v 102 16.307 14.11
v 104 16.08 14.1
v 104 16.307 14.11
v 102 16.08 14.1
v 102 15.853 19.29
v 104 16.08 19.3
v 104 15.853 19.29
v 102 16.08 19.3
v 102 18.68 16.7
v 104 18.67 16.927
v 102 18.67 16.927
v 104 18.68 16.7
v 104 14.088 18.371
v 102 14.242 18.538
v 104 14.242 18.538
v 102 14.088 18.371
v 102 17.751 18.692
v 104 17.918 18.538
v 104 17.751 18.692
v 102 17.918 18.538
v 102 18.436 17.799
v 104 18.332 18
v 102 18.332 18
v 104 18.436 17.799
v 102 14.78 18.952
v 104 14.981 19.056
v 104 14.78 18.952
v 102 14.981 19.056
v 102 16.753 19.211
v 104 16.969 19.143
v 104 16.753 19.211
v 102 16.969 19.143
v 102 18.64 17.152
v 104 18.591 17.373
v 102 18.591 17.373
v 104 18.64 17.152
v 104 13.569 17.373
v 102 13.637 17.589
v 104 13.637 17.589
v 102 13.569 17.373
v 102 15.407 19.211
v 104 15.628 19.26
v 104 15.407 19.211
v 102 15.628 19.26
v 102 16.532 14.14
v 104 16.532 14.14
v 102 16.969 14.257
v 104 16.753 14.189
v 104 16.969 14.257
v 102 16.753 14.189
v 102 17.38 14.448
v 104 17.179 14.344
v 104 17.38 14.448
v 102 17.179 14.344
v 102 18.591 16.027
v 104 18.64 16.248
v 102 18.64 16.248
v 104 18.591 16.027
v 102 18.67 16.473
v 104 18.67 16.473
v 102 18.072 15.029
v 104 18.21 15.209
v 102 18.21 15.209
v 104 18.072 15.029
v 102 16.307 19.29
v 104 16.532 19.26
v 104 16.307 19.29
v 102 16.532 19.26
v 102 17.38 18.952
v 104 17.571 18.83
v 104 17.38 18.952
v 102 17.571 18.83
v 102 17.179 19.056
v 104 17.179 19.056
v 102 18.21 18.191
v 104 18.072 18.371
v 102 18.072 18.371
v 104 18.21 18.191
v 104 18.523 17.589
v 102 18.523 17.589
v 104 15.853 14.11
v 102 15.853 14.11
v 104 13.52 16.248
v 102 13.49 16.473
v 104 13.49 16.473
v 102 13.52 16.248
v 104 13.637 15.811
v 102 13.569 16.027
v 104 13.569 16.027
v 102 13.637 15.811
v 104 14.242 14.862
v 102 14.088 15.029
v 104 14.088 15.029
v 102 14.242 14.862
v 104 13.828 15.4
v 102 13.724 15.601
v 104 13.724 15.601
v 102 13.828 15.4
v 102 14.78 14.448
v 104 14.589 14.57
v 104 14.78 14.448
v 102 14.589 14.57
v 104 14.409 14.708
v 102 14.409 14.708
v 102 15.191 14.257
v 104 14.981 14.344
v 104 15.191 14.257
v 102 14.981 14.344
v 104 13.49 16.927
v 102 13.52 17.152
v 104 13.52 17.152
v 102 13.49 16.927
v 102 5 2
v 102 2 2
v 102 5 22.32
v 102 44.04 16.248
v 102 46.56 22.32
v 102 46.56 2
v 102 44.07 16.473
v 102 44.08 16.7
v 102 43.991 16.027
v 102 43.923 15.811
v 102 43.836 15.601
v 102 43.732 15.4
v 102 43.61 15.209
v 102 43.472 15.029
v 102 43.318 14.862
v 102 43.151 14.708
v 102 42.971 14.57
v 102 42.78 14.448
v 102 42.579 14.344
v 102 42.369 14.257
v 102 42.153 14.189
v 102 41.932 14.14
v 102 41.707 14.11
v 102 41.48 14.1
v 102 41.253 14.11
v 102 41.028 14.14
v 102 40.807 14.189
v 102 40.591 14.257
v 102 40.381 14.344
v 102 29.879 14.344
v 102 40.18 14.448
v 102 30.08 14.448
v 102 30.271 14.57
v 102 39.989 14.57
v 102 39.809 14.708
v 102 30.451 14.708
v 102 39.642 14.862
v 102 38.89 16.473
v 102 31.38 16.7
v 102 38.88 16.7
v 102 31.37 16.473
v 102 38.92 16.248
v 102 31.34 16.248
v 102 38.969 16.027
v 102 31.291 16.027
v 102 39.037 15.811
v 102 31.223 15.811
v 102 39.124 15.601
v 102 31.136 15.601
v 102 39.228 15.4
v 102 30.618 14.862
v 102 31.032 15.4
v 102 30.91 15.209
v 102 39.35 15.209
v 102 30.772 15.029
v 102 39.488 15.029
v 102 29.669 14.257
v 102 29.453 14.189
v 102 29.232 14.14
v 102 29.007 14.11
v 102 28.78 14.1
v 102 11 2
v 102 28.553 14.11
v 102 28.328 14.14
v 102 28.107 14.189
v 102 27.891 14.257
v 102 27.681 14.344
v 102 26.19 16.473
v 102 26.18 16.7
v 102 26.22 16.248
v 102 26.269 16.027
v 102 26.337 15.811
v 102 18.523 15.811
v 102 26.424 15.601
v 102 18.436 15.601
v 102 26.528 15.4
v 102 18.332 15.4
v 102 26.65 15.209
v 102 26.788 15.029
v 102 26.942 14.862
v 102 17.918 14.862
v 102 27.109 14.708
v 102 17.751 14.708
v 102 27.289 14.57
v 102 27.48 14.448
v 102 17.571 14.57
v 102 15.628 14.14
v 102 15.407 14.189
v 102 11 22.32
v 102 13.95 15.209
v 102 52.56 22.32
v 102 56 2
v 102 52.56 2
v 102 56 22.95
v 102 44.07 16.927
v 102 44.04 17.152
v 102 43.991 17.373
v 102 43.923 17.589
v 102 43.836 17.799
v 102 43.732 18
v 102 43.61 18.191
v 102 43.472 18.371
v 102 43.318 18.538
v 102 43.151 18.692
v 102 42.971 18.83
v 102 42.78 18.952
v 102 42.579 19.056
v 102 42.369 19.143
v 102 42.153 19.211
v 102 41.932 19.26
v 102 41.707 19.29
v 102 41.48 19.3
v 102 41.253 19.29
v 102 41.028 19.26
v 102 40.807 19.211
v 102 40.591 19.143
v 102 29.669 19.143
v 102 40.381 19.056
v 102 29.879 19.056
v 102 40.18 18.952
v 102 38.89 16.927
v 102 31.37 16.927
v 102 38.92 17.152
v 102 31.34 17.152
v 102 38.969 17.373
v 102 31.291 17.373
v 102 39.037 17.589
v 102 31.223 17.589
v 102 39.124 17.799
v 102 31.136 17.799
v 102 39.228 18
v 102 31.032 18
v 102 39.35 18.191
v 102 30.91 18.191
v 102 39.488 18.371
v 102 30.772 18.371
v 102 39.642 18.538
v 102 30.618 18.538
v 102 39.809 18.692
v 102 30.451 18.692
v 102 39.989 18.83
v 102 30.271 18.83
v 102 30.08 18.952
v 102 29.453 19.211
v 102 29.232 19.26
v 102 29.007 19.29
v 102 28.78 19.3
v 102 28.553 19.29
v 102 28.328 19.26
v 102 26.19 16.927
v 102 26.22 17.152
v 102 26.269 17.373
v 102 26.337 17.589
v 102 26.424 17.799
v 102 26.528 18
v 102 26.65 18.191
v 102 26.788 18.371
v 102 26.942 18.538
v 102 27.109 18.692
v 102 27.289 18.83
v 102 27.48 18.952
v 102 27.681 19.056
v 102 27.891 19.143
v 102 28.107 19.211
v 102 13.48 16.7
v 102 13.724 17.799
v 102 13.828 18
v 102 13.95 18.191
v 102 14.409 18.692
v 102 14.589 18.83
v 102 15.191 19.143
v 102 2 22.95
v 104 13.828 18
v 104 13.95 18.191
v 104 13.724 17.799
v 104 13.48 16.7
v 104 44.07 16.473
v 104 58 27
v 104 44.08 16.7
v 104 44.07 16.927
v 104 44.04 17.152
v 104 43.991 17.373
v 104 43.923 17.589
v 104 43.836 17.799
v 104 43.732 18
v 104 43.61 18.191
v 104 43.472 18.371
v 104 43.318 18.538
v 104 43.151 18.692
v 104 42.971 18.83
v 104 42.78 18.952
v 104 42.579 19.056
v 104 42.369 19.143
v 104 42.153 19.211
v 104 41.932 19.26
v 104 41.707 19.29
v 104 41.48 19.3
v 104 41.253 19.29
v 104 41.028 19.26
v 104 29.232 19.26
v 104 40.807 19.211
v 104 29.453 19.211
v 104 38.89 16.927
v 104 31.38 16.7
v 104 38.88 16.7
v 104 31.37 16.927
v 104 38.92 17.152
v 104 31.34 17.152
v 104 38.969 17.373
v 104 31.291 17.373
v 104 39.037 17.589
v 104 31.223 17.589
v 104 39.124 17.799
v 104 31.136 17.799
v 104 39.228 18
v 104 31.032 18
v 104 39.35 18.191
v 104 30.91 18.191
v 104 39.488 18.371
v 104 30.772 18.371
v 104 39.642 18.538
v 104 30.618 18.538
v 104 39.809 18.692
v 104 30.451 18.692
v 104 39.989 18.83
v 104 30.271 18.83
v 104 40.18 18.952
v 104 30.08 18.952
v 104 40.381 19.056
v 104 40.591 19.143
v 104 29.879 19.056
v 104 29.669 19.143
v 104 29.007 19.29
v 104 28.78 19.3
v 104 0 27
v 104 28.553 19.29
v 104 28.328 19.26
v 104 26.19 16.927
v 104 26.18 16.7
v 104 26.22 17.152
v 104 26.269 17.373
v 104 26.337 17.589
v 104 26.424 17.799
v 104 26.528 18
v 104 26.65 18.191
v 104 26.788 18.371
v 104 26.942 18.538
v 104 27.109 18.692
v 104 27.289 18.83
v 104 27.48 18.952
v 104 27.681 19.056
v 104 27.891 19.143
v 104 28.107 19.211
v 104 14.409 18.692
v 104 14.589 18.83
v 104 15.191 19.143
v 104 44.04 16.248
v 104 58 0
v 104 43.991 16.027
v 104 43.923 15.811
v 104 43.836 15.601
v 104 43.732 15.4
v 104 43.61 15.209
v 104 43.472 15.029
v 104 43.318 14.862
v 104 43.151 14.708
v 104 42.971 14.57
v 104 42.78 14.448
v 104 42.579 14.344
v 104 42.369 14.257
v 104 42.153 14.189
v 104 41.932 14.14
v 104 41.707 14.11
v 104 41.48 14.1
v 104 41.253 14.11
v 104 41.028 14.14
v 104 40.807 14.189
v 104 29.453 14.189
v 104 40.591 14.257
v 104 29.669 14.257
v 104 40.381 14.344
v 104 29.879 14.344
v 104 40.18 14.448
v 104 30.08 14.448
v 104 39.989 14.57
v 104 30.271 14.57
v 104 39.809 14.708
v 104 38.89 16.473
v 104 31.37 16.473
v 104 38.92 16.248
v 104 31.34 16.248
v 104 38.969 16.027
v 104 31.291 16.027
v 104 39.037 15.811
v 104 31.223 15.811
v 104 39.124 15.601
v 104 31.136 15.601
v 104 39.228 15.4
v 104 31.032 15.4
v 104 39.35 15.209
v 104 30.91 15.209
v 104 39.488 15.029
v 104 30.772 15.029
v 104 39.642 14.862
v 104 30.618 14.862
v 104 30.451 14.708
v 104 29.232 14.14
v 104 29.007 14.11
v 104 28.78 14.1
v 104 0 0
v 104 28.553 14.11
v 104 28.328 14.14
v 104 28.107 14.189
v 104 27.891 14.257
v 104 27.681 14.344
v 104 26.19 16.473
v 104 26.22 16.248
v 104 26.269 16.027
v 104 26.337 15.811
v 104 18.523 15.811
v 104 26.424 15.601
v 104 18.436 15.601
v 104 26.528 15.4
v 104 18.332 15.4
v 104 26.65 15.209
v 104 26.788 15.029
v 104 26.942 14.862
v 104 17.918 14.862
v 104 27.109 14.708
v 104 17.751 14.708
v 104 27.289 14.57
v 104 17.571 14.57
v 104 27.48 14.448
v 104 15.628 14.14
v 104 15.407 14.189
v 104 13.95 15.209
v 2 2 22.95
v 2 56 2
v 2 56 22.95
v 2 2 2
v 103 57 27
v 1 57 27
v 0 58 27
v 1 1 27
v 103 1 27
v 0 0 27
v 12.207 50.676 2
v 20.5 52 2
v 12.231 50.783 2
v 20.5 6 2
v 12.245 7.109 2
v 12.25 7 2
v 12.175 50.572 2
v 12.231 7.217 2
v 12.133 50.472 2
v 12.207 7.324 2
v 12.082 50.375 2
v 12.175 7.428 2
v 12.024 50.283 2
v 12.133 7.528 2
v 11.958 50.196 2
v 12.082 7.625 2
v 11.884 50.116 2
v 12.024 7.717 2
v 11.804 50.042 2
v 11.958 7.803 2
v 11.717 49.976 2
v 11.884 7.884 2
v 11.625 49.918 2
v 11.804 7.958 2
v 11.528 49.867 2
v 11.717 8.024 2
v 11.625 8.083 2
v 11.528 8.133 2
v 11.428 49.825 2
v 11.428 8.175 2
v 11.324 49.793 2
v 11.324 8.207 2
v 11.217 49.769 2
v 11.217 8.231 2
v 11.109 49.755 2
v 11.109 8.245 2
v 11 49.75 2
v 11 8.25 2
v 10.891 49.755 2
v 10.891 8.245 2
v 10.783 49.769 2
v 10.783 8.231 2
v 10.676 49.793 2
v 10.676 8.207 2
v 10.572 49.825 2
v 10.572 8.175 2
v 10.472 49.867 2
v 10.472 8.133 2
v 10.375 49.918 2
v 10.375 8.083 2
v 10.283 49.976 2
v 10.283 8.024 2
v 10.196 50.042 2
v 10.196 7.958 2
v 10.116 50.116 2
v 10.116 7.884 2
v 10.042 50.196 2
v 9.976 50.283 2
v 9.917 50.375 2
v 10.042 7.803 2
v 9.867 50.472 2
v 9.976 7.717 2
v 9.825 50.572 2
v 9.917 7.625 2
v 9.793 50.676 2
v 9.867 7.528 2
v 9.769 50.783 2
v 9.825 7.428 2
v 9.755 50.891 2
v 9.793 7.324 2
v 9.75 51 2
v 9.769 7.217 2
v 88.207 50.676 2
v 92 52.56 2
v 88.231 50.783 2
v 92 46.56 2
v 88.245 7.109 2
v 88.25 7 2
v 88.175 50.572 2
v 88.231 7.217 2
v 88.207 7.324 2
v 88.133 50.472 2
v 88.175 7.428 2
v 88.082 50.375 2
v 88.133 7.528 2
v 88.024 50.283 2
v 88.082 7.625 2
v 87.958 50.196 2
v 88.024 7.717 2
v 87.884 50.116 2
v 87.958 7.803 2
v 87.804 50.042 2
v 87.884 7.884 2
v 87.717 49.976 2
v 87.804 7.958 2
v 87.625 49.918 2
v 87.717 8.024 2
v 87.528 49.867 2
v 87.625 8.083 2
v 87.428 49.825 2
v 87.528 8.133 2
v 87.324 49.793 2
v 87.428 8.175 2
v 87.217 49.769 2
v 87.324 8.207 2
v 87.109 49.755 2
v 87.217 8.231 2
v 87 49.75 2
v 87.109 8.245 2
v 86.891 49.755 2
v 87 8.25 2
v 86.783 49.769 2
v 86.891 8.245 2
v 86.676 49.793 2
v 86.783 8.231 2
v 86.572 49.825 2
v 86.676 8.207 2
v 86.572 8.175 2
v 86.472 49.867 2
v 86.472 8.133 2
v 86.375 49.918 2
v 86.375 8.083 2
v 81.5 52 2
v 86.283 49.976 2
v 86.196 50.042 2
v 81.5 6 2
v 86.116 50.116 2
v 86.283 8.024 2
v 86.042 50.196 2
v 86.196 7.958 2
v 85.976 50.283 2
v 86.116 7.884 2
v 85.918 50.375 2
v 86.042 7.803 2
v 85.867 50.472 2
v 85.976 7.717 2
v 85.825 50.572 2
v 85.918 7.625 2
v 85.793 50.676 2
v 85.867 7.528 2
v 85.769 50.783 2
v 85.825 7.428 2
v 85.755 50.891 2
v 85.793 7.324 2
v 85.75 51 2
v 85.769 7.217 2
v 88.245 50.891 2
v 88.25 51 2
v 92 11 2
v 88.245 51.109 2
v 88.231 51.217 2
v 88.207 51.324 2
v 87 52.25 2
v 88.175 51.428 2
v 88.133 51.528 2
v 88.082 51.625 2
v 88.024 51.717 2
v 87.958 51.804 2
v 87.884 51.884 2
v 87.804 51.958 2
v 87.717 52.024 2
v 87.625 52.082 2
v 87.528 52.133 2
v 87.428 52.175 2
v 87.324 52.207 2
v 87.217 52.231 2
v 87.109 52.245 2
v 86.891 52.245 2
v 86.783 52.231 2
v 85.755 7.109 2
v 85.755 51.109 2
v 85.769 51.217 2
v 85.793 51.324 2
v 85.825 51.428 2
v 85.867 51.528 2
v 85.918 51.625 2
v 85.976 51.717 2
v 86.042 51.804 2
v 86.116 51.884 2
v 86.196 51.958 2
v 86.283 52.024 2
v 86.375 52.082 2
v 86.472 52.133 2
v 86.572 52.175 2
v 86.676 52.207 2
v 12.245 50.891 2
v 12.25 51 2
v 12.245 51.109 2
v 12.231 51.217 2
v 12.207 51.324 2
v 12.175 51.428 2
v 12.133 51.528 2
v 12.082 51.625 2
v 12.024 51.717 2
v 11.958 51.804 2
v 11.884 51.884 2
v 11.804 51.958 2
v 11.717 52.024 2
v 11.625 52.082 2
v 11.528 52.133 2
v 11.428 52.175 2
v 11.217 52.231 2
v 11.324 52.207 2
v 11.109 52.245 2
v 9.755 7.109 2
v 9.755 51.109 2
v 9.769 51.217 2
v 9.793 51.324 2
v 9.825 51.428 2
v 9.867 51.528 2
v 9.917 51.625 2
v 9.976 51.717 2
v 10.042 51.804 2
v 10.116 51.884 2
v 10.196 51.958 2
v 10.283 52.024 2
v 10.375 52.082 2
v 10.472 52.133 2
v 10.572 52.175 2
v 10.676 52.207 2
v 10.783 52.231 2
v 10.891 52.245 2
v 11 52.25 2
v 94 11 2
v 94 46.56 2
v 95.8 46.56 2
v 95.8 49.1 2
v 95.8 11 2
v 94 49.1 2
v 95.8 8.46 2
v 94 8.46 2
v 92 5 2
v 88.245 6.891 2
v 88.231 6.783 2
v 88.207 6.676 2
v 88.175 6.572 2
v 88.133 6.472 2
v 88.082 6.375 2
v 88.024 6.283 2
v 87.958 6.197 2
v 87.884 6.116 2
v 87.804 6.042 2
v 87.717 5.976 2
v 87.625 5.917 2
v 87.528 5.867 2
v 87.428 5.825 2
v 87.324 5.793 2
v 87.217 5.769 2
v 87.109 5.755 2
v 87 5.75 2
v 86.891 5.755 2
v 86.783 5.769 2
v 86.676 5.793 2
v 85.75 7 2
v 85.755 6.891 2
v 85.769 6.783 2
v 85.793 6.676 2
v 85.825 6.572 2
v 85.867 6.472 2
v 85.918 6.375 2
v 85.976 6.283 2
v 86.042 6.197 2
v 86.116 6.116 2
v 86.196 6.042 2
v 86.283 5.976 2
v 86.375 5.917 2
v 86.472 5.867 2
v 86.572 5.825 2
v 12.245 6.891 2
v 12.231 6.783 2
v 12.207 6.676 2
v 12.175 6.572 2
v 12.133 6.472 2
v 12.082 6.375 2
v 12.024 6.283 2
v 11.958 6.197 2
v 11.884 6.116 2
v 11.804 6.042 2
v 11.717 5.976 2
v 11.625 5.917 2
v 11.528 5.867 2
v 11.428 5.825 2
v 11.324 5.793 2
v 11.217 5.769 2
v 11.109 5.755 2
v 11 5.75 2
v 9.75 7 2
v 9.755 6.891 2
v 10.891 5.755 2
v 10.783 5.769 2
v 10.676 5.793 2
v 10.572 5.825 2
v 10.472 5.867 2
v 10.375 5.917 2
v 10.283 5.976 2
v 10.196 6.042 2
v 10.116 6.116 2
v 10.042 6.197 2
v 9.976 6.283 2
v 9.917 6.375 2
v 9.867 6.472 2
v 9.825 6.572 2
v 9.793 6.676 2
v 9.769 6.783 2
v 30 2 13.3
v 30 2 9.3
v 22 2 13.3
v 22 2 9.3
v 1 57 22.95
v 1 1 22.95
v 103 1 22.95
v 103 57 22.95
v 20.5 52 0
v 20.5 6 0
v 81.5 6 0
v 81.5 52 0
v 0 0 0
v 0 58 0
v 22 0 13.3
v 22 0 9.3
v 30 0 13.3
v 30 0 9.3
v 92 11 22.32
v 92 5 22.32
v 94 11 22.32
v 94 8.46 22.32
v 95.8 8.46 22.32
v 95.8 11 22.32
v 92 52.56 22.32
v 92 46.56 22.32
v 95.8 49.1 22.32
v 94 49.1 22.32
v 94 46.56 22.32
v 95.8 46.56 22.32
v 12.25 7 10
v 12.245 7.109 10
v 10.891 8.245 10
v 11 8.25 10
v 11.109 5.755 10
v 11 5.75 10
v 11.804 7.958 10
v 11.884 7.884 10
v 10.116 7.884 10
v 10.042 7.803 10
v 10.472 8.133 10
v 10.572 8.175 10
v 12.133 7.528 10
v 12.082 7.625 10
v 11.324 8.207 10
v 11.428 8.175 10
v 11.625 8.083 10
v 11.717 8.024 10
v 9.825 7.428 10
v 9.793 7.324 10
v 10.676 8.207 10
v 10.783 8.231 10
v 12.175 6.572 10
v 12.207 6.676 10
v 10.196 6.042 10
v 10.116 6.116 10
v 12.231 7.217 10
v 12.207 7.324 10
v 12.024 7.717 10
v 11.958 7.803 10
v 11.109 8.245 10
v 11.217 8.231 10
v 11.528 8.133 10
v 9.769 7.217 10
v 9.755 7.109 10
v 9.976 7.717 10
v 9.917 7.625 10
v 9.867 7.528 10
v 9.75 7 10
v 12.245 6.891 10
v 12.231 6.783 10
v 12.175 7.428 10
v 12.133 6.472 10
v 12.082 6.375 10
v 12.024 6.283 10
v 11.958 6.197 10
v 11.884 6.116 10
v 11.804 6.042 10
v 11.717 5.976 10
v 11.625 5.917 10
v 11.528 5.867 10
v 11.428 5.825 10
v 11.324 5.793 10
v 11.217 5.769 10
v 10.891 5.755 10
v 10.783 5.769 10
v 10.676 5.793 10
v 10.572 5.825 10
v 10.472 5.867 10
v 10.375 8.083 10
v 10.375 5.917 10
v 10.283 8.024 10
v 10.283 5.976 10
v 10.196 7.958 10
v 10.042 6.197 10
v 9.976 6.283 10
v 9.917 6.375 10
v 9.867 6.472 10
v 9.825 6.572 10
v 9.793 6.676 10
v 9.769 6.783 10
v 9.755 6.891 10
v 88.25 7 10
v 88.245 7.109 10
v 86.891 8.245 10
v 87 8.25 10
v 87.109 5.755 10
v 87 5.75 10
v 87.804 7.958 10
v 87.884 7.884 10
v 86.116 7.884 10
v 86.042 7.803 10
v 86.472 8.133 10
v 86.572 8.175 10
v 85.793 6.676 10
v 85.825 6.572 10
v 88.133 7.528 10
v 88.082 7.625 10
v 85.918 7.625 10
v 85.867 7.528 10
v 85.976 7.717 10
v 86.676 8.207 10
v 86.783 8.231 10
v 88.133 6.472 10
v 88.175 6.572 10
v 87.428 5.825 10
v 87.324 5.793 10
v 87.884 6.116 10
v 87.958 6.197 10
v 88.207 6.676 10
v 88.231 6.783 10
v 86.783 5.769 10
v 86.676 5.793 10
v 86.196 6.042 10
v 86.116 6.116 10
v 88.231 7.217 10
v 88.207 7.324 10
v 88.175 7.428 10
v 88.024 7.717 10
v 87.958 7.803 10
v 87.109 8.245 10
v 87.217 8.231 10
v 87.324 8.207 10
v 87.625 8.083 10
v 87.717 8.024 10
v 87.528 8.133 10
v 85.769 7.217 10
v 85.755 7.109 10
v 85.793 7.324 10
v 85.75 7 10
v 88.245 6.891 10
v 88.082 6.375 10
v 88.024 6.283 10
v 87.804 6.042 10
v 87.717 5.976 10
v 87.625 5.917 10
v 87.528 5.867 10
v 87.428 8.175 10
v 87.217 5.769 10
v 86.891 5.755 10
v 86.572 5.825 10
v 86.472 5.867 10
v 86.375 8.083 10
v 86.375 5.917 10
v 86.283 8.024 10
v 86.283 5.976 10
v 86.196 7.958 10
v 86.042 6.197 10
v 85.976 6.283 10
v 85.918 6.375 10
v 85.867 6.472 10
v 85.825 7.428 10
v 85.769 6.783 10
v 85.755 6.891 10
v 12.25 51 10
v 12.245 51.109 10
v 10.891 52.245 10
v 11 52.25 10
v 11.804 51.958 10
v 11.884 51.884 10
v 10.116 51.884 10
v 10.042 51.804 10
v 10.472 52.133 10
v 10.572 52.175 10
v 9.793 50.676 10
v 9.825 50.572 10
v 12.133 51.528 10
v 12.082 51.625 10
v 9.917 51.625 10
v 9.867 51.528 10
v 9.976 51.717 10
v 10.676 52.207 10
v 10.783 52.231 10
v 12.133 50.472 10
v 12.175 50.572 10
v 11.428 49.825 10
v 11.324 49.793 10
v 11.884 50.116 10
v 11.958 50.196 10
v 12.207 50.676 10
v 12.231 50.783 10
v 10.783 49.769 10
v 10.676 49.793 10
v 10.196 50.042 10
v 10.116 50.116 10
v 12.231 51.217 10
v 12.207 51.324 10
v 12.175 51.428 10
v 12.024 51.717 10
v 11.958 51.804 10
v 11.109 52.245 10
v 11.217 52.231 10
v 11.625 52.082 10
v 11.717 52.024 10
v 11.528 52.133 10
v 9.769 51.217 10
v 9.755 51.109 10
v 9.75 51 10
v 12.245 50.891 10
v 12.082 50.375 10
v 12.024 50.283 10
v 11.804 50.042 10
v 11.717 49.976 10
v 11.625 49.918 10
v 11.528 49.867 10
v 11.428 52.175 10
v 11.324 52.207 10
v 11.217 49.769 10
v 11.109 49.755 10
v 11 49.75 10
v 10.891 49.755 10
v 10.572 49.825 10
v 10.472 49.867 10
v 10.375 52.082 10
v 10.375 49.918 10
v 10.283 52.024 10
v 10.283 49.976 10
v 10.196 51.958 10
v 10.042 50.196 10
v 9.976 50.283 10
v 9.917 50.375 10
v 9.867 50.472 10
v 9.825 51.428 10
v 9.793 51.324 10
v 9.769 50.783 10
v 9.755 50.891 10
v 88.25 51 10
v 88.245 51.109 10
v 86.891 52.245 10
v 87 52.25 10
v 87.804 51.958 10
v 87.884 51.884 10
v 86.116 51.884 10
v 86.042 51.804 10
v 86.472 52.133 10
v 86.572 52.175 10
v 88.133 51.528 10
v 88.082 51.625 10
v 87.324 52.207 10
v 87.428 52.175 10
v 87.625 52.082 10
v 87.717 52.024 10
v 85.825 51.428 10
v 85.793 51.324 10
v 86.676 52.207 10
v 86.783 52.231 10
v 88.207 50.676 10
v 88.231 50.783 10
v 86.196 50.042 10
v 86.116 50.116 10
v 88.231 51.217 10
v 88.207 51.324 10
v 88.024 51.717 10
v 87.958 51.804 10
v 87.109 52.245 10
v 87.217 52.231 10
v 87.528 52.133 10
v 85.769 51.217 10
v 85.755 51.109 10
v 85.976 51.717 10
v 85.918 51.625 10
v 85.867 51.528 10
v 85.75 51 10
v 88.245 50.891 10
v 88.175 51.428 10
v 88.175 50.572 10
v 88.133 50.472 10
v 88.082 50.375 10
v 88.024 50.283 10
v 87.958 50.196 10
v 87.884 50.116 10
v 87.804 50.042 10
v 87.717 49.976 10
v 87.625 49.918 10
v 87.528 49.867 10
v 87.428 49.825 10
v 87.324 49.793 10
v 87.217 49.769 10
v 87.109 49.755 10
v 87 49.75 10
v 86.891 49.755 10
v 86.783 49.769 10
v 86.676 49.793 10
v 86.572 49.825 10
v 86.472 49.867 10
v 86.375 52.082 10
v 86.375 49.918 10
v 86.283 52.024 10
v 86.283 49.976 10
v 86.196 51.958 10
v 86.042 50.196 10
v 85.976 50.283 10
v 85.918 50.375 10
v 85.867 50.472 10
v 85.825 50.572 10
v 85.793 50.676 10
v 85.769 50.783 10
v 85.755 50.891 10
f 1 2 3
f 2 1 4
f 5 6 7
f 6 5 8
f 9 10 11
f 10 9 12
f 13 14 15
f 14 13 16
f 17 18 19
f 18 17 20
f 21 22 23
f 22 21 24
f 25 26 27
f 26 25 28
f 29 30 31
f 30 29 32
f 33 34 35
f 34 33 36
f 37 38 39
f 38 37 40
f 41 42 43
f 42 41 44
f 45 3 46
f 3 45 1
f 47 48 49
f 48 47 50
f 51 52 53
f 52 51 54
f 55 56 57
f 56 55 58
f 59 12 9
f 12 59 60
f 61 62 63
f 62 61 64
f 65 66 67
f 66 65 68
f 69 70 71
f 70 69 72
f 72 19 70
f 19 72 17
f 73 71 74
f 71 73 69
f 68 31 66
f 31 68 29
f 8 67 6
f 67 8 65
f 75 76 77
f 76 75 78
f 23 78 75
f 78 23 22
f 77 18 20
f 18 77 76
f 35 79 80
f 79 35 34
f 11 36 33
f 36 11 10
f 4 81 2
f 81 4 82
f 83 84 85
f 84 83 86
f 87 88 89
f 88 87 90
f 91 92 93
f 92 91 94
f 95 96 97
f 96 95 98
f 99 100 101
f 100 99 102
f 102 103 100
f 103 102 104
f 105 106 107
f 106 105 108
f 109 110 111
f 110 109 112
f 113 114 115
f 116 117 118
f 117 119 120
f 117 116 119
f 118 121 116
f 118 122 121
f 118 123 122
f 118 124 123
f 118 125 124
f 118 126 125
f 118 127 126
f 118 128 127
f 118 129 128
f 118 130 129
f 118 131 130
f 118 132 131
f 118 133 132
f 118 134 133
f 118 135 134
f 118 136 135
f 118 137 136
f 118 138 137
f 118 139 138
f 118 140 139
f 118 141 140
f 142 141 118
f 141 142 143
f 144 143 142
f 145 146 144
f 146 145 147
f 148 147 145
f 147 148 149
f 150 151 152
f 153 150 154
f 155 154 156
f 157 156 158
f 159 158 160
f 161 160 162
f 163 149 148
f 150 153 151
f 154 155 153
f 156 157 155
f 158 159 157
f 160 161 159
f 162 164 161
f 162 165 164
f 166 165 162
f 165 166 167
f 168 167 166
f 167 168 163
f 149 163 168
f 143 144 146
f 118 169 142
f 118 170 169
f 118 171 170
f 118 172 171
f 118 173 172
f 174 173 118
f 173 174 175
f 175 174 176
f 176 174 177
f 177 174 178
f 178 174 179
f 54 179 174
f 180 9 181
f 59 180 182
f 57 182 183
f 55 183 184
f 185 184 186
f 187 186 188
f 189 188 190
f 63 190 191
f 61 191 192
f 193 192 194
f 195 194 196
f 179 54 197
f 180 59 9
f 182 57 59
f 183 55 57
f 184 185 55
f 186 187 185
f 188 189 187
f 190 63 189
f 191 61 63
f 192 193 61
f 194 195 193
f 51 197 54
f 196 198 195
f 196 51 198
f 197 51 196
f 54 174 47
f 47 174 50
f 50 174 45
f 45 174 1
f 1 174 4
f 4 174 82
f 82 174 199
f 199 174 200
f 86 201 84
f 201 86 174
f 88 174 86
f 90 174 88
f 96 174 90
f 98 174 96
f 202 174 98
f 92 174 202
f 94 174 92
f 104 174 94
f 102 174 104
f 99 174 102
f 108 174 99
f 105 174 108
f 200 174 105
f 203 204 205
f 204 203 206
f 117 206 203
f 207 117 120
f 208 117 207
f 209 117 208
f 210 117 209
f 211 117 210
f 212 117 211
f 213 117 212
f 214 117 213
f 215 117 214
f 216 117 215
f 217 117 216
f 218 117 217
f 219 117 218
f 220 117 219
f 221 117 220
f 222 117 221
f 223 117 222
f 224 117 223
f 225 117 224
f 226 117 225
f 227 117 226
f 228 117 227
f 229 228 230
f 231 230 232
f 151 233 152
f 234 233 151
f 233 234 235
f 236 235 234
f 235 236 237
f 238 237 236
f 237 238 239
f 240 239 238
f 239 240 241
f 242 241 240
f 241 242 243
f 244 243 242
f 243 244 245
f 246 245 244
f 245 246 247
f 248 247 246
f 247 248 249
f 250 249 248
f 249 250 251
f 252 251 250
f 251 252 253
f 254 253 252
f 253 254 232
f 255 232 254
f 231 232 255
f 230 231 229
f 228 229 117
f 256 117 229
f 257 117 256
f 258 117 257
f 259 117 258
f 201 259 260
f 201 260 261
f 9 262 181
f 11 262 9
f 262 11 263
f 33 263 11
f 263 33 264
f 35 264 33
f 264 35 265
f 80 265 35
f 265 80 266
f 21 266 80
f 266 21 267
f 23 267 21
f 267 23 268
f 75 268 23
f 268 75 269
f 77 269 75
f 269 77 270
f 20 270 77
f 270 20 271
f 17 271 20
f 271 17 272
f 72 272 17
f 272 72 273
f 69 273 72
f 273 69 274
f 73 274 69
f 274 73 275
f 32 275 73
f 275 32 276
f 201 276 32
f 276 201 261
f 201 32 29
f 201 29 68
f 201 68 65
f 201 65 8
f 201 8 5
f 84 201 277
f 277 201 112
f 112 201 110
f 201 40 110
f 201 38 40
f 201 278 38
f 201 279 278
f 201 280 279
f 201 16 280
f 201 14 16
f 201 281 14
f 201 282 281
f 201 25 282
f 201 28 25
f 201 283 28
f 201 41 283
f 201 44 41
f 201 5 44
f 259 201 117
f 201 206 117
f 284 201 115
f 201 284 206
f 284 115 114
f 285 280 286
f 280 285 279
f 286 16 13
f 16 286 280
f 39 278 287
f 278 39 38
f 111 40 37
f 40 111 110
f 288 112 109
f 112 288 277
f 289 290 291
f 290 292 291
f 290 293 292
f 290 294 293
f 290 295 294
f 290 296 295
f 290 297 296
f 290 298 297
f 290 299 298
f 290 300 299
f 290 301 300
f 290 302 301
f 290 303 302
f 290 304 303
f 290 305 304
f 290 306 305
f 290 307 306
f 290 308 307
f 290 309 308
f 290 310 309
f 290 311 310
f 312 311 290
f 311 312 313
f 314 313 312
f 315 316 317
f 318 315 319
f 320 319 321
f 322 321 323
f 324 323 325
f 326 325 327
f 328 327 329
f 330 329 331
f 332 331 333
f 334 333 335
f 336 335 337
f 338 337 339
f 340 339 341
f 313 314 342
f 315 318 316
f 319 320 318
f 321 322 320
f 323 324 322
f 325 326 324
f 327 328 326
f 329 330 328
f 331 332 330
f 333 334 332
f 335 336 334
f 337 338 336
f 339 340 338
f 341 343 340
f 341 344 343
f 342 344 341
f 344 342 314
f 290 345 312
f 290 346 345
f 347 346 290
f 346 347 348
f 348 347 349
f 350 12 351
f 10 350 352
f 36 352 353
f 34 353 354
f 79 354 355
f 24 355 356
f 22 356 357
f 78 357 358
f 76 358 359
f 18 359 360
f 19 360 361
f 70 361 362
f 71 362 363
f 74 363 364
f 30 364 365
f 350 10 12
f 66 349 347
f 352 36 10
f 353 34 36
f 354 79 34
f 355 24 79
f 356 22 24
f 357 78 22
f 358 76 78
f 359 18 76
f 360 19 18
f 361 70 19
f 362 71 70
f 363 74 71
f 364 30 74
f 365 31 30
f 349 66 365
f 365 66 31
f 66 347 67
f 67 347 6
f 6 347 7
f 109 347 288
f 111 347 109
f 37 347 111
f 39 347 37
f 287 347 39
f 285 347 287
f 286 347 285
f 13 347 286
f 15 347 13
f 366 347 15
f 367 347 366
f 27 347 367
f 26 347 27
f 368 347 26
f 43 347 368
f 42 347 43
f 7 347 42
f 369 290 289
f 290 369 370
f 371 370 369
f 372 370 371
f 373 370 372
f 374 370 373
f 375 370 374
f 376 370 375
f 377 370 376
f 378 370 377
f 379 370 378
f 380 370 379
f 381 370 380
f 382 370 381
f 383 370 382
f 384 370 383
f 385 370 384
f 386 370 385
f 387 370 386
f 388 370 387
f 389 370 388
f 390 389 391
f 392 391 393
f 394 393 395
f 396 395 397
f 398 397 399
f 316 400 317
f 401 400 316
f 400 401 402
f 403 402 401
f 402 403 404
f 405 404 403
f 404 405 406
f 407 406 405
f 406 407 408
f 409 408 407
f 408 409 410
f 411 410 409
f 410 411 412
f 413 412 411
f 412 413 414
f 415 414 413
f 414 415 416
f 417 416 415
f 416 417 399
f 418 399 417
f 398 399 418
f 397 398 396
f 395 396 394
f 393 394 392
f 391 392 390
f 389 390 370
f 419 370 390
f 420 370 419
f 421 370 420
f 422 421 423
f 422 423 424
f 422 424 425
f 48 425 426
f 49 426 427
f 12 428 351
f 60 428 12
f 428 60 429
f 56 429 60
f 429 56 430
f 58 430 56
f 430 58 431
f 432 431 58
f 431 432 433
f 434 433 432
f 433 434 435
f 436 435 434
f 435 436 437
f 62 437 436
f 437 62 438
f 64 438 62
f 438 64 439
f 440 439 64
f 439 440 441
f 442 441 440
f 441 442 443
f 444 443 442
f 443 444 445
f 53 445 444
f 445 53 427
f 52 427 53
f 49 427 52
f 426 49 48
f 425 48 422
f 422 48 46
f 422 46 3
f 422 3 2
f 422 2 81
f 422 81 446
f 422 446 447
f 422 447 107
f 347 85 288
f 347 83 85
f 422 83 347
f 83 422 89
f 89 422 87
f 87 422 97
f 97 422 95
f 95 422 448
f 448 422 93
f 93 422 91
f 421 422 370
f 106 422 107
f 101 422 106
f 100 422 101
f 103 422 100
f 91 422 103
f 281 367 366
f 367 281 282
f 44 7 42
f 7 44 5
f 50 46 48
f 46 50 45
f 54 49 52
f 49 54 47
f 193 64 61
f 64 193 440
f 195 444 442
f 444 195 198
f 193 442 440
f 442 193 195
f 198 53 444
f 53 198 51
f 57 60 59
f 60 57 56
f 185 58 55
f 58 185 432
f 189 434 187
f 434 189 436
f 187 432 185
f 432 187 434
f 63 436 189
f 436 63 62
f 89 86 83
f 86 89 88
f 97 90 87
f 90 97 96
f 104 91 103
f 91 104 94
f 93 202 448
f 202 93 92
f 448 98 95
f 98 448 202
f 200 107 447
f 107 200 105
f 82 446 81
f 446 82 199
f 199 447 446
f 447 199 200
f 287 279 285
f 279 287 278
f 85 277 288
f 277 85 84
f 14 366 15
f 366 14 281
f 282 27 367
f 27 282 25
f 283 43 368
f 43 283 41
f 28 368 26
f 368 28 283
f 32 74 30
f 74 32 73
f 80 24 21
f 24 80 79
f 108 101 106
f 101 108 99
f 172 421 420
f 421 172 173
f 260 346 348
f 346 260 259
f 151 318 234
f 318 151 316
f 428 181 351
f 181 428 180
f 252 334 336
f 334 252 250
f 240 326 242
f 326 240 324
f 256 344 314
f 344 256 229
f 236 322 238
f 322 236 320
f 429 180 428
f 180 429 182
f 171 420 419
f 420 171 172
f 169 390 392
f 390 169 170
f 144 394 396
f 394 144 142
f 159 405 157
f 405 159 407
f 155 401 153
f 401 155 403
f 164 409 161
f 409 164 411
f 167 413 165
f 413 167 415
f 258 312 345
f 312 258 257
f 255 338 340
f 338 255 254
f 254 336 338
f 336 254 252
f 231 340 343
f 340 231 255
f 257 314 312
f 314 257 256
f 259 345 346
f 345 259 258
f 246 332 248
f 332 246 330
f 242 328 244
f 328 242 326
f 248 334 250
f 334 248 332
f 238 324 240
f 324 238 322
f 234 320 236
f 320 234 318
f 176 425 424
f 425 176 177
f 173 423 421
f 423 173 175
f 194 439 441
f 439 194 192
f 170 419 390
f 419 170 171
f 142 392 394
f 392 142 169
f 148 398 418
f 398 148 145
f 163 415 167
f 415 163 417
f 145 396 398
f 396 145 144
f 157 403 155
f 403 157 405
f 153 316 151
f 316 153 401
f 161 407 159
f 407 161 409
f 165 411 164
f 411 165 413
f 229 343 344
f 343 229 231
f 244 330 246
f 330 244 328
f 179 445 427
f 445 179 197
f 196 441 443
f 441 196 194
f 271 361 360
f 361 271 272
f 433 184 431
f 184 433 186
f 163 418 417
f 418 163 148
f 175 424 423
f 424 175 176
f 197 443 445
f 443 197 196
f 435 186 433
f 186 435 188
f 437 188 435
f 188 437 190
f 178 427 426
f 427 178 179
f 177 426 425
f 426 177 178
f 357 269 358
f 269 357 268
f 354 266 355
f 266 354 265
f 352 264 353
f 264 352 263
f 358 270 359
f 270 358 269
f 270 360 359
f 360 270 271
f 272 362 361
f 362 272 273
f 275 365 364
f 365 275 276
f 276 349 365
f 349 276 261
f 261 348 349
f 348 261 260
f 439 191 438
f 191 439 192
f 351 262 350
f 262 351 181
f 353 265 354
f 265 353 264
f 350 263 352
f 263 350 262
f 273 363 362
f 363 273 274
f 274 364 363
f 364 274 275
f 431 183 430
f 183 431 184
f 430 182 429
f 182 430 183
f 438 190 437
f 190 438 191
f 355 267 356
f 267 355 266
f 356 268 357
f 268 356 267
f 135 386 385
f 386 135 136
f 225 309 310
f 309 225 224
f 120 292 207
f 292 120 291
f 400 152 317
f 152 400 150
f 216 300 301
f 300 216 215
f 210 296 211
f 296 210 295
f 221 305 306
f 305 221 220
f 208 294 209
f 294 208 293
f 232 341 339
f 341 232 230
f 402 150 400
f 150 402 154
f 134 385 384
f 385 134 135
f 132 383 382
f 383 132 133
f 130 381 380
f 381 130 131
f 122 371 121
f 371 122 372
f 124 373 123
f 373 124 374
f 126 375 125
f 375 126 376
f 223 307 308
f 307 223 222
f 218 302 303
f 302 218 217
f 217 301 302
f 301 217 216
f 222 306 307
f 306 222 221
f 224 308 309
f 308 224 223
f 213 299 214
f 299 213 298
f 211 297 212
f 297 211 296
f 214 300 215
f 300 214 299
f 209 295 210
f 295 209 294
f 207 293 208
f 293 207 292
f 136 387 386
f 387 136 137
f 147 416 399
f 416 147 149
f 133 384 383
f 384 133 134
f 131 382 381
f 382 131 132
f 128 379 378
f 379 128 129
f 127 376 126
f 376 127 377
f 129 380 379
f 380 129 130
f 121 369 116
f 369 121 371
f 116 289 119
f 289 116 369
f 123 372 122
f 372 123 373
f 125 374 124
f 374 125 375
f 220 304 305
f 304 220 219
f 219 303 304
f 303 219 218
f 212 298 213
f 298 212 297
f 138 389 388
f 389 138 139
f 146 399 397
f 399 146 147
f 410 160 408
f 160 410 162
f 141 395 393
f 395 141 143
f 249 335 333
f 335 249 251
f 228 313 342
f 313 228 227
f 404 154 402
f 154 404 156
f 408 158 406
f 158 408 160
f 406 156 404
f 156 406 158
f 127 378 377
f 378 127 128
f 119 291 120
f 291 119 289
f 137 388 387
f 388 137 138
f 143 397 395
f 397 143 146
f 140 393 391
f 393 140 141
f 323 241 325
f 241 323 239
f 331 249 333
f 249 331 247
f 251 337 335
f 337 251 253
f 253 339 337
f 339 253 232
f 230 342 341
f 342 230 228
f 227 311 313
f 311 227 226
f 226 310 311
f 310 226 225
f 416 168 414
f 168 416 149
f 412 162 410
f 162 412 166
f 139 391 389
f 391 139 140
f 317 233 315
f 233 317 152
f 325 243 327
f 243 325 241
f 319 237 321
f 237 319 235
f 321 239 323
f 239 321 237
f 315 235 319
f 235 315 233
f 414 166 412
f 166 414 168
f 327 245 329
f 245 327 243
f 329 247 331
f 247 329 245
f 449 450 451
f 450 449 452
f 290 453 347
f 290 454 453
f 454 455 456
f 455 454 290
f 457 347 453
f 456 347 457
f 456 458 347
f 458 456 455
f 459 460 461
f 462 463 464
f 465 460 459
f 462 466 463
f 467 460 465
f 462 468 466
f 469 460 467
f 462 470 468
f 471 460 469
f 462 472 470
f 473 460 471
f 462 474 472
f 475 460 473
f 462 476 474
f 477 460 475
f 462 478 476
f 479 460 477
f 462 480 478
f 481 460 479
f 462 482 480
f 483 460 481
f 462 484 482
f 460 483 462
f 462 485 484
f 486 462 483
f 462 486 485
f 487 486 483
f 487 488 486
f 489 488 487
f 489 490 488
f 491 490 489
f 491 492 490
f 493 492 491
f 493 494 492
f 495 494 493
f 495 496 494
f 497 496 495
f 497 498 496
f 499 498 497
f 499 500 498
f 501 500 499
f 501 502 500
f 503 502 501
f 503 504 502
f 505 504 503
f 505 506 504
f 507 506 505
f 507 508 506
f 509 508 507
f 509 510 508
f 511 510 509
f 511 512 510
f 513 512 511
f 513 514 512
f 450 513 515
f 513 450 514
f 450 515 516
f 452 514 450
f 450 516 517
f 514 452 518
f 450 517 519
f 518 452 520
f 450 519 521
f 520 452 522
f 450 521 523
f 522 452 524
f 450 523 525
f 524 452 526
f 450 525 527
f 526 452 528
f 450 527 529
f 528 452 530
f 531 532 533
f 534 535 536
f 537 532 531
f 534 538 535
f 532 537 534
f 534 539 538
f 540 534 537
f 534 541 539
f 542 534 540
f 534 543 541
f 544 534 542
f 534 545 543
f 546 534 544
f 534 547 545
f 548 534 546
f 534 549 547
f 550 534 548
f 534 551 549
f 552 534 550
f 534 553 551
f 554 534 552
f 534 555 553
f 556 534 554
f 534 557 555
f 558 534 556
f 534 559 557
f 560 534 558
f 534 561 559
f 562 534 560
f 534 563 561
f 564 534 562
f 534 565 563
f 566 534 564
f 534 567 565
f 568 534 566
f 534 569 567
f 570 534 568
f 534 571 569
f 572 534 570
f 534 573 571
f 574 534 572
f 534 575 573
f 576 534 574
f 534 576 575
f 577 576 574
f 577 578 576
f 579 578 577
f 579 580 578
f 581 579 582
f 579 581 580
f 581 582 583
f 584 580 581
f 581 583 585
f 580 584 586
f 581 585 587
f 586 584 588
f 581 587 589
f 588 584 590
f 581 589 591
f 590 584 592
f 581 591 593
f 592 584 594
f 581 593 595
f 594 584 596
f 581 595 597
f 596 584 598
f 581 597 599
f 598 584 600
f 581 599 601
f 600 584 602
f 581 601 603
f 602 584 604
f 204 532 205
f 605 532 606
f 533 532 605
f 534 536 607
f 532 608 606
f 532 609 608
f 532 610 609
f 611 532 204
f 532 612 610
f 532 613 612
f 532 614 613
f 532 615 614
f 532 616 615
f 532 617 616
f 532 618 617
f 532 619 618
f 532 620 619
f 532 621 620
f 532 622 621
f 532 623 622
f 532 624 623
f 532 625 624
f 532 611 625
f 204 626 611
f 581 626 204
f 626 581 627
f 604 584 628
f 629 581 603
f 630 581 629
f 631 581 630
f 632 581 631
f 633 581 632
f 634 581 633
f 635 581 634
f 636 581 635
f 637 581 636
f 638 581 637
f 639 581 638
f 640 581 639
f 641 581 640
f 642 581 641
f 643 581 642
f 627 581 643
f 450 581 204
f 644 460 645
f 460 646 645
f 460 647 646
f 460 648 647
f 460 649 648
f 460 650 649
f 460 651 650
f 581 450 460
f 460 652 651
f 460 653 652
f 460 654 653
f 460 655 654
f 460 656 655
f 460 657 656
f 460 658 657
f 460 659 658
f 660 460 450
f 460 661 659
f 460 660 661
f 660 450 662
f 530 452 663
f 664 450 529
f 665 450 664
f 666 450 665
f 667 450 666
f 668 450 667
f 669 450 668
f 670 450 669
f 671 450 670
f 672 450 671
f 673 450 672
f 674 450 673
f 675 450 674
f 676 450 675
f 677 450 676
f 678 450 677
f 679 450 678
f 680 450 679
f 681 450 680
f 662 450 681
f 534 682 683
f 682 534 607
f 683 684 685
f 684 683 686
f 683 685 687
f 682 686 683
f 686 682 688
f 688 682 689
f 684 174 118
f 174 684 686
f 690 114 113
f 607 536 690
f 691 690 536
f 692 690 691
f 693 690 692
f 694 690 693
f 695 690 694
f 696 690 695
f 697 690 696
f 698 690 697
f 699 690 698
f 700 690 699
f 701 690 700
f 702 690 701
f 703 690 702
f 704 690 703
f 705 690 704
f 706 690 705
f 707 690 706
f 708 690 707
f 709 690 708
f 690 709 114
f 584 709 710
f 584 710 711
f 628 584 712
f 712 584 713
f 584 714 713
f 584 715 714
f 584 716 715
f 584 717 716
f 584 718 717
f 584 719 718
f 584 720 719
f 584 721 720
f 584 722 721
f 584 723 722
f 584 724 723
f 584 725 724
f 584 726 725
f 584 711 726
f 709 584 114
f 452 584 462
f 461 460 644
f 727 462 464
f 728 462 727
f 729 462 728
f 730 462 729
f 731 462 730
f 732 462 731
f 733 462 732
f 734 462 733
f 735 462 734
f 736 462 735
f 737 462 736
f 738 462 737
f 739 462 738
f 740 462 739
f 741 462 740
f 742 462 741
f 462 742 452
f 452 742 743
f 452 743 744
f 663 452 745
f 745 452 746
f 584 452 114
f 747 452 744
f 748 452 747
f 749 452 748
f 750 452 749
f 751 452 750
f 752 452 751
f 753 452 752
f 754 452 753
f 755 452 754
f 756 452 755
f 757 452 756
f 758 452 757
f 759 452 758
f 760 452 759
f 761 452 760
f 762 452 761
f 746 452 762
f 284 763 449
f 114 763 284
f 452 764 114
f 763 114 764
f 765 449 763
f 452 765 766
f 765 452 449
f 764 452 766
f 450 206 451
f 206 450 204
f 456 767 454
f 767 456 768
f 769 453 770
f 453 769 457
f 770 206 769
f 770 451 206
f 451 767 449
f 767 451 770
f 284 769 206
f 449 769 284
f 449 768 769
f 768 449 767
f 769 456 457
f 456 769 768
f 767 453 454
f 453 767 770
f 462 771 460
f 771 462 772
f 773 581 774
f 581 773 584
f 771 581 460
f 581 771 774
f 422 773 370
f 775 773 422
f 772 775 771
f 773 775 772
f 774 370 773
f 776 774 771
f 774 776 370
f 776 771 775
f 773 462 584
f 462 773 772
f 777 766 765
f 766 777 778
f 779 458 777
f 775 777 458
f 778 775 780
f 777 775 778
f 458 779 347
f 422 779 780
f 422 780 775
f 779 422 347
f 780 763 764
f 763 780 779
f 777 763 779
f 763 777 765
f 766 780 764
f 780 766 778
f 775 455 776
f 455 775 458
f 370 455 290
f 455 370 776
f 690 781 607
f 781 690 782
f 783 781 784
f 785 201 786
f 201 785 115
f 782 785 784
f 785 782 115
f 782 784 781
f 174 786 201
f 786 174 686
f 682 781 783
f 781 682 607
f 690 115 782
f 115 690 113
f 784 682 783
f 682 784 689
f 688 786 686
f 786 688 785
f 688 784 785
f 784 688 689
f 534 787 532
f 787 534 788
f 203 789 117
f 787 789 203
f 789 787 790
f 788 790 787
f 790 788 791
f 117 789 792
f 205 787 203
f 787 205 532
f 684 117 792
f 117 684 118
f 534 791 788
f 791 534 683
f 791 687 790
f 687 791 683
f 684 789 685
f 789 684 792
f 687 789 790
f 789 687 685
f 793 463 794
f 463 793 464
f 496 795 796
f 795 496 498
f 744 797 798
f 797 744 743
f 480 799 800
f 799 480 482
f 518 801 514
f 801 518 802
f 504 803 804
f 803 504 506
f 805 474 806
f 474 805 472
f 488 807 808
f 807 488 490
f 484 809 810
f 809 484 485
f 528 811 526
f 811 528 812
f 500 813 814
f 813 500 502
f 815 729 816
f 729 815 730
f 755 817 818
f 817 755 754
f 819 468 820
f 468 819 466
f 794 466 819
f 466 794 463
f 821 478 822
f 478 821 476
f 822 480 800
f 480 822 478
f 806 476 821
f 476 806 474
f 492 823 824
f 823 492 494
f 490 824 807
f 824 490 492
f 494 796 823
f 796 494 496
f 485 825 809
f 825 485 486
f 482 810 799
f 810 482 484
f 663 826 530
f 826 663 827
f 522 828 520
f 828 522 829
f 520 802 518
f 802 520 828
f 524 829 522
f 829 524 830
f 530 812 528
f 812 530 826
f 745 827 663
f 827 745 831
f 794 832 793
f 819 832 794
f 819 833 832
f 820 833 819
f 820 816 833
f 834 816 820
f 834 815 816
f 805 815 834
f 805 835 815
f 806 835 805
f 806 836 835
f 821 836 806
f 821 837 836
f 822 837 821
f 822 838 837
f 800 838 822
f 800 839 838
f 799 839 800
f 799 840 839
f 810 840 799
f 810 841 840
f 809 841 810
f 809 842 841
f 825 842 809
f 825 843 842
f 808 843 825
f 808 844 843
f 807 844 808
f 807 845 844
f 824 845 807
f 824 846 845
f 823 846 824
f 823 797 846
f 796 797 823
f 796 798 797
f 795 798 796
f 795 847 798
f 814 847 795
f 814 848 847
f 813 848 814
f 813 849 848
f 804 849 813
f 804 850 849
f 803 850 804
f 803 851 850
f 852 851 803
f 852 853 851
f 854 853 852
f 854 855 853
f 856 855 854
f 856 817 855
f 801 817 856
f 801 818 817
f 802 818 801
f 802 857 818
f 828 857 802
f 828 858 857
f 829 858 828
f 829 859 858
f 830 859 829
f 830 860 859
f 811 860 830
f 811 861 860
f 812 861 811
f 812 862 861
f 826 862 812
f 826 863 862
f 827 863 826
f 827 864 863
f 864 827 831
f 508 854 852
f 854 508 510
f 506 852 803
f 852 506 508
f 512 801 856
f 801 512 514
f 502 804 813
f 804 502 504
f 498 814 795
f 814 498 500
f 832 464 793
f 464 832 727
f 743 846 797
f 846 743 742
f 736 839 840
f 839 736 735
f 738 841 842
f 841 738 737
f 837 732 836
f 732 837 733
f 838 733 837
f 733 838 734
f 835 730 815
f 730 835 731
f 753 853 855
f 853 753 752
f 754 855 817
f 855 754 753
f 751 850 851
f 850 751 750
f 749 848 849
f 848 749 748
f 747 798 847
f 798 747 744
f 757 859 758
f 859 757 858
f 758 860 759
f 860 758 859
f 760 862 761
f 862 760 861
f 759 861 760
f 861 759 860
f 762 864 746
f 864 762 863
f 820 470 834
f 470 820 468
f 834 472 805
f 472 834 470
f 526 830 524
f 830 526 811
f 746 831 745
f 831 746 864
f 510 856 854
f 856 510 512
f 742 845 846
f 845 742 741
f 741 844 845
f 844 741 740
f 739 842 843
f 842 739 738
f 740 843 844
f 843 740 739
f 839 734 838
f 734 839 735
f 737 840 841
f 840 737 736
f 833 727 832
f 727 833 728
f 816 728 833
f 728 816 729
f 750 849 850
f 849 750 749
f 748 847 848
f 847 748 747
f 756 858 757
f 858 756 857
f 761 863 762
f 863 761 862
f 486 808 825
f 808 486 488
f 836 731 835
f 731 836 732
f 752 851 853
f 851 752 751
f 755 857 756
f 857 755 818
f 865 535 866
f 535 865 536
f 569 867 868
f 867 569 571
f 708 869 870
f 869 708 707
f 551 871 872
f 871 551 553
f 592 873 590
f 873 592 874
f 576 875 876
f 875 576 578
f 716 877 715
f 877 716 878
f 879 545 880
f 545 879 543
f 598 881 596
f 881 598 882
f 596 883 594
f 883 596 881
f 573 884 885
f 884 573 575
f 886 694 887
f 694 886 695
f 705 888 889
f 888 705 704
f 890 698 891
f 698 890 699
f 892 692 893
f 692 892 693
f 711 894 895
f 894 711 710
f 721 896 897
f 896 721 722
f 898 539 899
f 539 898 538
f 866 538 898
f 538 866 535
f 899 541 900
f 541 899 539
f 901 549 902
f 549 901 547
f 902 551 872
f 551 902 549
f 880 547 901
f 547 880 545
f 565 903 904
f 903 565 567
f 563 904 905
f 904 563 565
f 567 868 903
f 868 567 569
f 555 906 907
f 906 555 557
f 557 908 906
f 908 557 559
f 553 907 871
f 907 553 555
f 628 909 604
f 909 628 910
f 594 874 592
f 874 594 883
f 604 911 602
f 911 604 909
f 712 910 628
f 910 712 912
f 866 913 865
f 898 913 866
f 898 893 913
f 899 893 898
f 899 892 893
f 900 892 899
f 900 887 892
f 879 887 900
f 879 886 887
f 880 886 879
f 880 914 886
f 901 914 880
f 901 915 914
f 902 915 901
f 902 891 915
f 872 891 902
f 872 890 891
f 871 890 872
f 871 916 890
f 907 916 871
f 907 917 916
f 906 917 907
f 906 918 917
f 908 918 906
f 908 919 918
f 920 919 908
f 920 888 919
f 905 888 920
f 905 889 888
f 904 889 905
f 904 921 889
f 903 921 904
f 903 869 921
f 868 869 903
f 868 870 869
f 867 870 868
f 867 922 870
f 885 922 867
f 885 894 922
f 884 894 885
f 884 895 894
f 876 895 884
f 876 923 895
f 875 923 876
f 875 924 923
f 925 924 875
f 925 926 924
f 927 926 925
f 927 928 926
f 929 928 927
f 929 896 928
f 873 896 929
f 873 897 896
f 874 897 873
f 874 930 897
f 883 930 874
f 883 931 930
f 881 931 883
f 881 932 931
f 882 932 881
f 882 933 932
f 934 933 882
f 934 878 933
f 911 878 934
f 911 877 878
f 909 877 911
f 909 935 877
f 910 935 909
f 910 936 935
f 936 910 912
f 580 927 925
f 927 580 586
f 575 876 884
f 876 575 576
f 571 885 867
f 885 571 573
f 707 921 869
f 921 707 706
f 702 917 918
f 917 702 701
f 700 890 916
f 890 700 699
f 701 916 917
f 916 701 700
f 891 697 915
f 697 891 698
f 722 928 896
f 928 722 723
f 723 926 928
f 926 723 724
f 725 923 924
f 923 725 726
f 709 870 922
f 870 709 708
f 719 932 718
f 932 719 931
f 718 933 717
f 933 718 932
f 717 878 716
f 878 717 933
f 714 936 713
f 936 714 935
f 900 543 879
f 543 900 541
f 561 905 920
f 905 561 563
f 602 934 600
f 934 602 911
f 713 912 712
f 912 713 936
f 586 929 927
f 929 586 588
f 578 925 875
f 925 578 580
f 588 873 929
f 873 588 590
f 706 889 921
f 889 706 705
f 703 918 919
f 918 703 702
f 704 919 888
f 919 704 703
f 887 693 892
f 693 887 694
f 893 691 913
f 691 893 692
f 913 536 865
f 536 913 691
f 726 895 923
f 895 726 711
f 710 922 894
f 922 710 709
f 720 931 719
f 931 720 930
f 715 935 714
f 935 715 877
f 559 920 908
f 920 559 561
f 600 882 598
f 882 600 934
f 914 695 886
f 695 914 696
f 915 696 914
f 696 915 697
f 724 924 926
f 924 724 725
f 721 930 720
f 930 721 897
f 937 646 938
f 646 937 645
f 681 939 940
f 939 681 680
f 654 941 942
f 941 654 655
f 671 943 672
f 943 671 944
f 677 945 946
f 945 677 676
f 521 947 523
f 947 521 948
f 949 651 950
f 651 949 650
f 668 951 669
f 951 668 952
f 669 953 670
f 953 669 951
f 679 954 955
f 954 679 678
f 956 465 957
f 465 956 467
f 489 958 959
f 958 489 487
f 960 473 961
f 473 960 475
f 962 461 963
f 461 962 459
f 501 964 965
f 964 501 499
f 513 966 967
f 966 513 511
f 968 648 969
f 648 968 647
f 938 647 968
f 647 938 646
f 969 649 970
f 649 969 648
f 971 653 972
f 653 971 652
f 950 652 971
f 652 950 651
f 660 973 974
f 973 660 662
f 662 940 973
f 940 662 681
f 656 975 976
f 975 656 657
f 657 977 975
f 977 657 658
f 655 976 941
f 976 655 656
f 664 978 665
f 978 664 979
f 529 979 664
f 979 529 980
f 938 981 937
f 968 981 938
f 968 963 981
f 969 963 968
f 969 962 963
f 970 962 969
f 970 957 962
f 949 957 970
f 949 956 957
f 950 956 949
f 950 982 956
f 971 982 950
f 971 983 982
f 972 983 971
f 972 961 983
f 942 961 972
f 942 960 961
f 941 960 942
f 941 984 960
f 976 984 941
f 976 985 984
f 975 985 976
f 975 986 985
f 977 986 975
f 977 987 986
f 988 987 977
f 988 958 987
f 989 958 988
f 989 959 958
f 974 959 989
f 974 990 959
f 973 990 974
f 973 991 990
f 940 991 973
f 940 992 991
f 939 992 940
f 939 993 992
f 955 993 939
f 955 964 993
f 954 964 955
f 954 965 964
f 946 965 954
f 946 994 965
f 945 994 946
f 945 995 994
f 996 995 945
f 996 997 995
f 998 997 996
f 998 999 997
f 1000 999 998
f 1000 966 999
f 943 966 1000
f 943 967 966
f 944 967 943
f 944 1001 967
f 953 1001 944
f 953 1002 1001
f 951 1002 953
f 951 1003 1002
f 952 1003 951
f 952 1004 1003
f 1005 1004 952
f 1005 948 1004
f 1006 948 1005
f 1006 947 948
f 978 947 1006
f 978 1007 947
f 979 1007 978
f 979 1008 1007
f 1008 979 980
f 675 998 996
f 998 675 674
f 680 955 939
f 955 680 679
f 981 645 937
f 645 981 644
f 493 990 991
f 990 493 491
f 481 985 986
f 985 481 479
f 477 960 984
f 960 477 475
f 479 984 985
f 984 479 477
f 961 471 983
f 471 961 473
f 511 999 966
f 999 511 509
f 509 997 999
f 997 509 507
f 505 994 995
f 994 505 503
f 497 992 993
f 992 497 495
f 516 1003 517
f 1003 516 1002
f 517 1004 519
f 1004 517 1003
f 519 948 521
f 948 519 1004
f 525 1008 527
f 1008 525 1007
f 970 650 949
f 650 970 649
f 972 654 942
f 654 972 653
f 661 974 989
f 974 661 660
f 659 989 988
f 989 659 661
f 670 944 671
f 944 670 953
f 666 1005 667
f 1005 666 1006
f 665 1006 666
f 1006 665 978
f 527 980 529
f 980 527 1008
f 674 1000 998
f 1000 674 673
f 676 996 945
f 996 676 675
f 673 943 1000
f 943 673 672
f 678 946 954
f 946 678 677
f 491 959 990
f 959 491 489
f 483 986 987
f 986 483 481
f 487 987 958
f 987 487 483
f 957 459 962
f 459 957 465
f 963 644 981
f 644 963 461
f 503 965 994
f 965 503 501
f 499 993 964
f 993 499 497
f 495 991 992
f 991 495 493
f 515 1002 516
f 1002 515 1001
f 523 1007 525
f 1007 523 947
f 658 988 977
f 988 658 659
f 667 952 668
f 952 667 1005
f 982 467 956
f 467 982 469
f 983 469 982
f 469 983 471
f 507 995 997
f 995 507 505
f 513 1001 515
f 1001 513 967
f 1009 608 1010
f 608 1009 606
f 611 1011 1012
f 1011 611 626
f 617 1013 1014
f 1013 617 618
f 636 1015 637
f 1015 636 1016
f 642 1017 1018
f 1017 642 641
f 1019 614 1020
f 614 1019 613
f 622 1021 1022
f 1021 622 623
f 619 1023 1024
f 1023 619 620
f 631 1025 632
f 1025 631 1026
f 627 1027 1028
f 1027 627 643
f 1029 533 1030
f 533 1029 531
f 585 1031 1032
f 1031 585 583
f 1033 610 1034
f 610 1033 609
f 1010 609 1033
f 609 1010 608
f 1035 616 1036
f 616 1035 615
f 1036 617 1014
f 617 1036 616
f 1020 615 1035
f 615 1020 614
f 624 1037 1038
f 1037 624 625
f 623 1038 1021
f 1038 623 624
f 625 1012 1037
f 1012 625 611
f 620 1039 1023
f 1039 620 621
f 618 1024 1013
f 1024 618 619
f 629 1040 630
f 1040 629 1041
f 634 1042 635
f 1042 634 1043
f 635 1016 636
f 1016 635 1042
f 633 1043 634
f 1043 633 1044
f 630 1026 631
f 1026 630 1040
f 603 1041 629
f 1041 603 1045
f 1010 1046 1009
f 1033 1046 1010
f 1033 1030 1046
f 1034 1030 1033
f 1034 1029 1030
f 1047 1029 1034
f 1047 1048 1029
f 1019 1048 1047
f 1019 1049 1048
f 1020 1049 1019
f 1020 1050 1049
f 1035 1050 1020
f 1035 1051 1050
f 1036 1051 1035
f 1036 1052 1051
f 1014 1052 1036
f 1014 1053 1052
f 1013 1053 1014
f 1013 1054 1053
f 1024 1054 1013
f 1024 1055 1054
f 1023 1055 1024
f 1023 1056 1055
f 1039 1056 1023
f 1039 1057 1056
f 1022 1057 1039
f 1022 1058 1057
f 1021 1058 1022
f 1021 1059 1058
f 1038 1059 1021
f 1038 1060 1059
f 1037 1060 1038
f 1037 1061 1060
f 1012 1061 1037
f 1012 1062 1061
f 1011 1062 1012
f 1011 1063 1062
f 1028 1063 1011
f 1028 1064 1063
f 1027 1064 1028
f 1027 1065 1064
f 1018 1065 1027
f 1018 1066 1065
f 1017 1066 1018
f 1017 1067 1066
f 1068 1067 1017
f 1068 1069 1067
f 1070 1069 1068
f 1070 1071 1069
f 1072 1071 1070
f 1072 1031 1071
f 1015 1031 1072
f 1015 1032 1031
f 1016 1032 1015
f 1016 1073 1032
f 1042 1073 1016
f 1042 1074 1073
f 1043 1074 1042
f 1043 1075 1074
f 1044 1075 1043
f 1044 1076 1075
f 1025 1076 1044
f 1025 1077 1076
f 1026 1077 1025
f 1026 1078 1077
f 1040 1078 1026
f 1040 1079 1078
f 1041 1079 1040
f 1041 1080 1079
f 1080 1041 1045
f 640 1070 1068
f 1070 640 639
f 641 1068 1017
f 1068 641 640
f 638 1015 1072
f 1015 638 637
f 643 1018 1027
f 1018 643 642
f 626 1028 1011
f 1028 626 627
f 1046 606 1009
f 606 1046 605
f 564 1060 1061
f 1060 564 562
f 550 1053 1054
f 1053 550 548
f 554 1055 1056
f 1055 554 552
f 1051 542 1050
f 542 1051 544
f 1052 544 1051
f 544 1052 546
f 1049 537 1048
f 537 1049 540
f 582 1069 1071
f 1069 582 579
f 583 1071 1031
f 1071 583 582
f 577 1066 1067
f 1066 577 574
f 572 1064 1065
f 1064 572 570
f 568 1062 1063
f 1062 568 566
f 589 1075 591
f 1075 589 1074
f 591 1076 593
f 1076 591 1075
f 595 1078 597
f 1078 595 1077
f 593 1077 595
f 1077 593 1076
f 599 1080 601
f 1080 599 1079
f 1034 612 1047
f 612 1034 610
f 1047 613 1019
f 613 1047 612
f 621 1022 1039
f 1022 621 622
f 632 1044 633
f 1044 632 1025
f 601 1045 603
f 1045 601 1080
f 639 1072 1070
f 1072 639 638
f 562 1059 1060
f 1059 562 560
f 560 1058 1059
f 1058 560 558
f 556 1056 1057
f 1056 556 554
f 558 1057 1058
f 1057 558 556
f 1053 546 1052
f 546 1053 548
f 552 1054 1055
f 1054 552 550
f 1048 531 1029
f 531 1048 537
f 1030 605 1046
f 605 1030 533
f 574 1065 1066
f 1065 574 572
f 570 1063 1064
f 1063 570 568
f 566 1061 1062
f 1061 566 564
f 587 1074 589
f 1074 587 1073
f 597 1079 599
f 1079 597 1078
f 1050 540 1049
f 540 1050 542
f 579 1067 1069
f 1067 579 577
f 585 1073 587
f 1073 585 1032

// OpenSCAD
//lcd 2.8 box top
$fn = $preview ? 12 : 72;
//
// inside size
wid1 = 54;
len1= 90+10;
height = 50;
wall = 2;
gap = 0.05;
cornerRadius = 10;

//buttons
 s=2.54;
 g=0.2;
 sy=11;  


//bottom
difference() {
    translate([0, 0, 0]) roundedBox(wid1+2*wall, len1+2*wall, height/2+wall,cornerRadius);
    union() { 
        translate([wall,wall,wall]) roundedBox(wid1, len1, height/2, cornerRadius); 
        translate([wall-1,wall-1,height/2+wall-4-gap]) roundedBox(wid1+2,len1+2,4+gap,cornerRadius);
        //lcd hole
        translate([17+2+wall-0.5,4+wall,0]) cube(size=[61,46,wall]);
        //cuts for buttons    
        translate([len1+wall,sy,wall]) 
            union()
                for (a =[0:2])  
                {
                 #translate([0,0+a*s*5+2*s,wall+12.7]) rotate([0,90,0]) cylinder(d=5.2,h=wall);
                 *translate([0,0+a*s*5,0]) cube(size=[wall,g,6*s]); 
                 *translate([0,4*s+a*s*5,0]) cube(size=[wall,g,6*s]);
                 *translate([0,+a*s*5,6*s]) cube(size=[wall,4*s+g,g]);  
                }
         //buzzer hole
         *translate ([50,wall,23]) rotate(a=[90,0,0]) cylinder(r=1.5,h=2,center=false);  
         // USB hole
         #translate ([18+2+wall,wall,7.3+wall]) rotate(a=[90,0,0]) cube(size=[8,4,wall]);      
        }
    } 



//LCD feet
 translate([9+wall,5+wall,wall]) {
    cylinder(8,d=2.5);
        }
translate([85+wall,5+wall,wall]) {
    cylinder(8,d=2.5);
        }
        translate([9+wall,49+wall,wall]) {
    cylinder(8,d=2.5);
        }
        translate([85+wall,49+wall,wall]) {
    cylinder(8,d=2.5);
        }

// button rails
     
    difference() {
    translate([wall+len1-10,sy-6,wall]) cube(size=[10,6,8*s]);
    translate([wall+len1-10+2,sy-s,wall]) cube(size=[1.8,s,8*s]);
                 }    
         
    difference() {
    translate([wall+len1-10,sy+3*5*s-s,wall]) cube(size=[10,6,8*s]);
    translate([wall+len1-10+2,sy+3*5*s-s,wall]) cube(size=[1.8,s,8*s]);
    }


//buzzer
    *translate ([50,4,23])
    rotate(a=[90,0,0]) {
    difference() {
        cylinder(r=27/2+1,h=2,center=false);
        union() {
            cylinder(r=27/2,h=2,center=false);
            cylinder(r=27/2+0.1,h=0.5,center=false);
            } 
    }
}  




module roundedBox(wid1, len1, height, radius)
{
    dRadius = 2*radius;
    cube(size=[len1,wid1, height]);
  
}
